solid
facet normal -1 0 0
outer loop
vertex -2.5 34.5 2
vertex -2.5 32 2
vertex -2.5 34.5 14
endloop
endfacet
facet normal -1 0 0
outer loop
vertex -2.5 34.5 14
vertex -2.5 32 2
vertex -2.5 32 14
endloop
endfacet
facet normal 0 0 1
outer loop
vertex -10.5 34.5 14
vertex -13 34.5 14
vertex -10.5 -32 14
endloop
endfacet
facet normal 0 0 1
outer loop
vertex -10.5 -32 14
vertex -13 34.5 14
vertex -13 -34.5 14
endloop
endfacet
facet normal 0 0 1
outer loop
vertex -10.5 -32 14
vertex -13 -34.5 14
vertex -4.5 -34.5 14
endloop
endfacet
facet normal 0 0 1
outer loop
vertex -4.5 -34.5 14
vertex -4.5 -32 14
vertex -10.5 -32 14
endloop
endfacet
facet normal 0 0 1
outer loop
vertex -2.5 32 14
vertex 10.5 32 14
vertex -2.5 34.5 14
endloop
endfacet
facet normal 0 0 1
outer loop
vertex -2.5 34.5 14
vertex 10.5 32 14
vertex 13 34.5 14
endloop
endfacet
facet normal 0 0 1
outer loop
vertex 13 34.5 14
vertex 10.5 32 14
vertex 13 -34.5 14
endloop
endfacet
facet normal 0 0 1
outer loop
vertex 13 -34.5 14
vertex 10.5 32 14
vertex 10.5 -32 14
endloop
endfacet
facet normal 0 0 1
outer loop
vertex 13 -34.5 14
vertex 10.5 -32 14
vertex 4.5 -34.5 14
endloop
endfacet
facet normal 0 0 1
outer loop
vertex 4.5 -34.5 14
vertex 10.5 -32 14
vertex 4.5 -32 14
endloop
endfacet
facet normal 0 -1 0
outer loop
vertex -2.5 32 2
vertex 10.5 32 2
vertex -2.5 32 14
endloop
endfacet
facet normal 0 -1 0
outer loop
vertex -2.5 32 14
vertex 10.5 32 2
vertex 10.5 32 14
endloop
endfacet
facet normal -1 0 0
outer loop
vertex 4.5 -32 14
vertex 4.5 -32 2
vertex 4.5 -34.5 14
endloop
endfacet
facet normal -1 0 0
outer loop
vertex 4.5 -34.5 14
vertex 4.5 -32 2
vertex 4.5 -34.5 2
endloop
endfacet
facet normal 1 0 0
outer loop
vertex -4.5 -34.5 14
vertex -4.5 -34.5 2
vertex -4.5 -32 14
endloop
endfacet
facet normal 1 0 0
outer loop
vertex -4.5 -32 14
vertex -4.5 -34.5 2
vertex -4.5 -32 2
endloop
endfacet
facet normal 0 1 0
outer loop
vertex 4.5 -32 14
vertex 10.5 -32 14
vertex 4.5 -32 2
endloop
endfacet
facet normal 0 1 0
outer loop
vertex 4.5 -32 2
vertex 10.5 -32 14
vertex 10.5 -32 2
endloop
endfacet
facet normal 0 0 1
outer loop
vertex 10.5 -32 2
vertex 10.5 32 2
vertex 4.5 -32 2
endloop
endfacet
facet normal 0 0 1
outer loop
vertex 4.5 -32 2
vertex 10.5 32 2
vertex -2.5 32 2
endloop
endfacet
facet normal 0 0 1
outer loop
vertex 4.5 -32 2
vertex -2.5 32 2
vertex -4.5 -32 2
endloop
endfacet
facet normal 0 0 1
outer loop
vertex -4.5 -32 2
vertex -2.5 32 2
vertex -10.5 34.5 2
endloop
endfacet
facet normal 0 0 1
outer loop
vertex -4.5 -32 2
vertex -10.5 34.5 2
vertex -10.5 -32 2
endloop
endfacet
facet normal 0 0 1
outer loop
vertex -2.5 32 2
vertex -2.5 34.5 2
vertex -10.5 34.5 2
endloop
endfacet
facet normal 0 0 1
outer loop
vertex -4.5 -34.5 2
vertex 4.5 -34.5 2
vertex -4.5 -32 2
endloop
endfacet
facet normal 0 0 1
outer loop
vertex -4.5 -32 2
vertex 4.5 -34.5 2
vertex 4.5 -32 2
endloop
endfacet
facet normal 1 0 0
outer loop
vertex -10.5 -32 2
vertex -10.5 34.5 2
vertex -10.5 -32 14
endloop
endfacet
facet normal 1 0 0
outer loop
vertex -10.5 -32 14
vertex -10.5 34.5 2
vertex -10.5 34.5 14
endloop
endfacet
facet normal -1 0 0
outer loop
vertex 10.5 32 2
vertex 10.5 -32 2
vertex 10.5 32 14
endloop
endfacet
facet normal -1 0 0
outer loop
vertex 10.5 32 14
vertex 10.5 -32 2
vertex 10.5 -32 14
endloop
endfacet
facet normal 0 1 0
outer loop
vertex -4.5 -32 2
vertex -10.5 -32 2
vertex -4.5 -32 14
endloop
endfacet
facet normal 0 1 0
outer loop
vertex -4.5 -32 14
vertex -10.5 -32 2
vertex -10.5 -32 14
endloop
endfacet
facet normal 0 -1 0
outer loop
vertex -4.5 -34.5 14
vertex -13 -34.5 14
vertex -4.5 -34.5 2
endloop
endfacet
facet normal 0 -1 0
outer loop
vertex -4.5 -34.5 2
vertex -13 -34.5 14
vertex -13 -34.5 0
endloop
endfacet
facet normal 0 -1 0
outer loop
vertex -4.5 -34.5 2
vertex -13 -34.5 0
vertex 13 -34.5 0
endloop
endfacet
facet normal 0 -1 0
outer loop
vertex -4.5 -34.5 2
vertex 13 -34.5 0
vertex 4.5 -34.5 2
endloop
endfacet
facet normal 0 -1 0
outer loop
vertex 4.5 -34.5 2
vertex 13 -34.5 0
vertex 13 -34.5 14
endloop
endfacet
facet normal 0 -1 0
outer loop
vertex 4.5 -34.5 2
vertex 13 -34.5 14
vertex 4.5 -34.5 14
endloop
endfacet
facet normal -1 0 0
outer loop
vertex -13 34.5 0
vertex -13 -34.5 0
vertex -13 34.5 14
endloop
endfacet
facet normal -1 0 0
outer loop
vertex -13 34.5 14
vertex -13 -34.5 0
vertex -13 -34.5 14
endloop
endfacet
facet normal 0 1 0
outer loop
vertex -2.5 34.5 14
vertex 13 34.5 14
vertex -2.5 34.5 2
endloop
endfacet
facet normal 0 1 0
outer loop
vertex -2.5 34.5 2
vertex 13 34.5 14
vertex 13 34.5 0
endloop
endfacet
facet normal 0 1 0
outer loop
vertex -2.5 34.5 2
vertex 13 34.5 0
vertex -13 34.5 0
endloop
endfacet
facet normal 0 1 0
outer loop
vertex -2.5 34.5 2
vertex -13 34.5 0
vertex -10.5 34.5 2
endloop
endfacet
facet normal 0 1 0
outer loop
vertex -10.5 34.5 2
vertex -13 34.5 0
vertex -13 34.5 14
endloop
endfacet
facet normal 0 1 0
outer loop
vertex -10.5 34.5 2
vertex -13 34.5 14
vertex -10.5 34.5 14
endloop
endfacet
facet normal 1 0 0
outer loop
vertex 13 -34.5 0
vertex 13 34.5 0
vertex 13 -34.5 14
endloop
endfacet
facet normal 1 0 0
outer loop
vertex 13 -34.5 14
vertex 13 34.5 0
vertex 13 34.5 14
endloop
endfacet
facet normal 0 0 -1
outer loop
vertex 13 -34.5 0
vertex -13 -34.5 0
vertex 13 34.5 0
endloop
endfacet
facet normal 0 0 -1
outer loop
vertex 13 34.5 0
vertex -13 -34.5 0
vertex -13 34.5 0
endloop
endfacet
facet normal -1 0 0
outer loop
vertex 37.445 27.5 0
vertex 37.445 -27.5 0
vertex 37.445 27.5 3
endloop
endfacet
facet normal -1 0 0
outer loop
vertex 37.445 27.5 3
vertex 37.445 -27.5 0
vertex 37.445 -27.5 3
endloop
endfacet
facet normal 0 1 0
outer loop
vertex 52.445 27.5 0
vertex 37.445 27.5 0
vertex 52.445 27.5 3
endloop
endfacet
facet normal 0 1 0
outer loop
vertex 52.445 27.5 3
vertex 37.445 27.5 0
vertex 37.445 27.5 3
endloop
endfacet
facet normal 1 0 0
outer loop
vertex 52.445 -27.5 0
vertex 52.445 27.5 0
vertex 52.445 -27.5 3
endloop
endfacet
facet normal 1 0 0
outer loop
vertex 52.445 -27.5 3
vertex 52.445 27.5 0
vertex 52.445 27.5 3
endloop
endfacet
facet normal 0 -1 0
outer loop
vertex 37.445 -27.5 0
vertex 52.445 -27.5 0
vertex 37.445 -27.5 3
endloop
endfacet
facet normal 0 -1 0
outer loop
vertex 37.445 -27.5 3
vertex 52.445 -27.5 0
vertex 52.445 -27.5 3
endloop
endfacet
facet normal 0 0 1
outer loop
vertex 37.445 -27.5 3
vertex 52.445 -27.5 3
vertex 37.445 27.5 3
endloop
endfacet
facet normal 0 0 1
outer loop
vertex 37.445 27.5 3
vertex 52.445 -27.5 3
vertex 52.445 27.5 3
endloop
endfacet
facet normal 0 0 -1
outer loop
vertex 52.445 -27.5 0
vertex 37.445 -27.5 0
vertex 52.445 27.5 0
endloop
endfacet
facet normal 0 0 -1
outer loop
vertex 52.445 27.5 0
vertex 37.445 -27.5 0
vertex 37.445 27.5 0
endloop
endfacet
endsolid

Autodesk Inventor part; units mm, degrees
ref_plane "YZ Plane" through (0, 0, 0) normal (1, 0, 0) x (0, 1, 0)
ref_plane "XZ Plane" through (0, 0, 0) normal (0, 1, 0) x (-1, 0, 0)
ref_plane "XY Plane" through (0, 0, 0) normal (0, 0, 1) x (1, 0, 0)
sketch "Skizze1" plane through (0, 0, 0) normal (0, 0, 1) x (1, 0, 0)
  line L0 (-10.5, 32) -> (10.5, 32)
  line L1 (10.5, 32) -> (10.5, -32)
  line L2 (10.5, -32) -> (-10.5, -32)
  line L3 (-10.5, -32) -> (-10.5, 32)
  line L4 (-10.5, 32) -> (10.5, -32) construction
  line L5 (10.5, 32) -> (-10.5, -32) construction
  line L6 (13, -34.5) -> (13, 34.5)
  line L7 (13, 34.5) -> (-13, 34.5)
  line L8 (-13, 34.5) -> (-13, -34.5)
  line L9 (-13, -34.5) -> (13, -34.5)
  point P0 (0, 0)
  dimension "d0" = 21
  dimension "d1" = 64
  dimension "d2" = 2.5
extrude "Extrusion1" add sketch "Skizze1" along normal blind 14
sketch "Skizze2" plane through (0, 0, 0) normal (0, 0, -1) x (-1, 0, 0)
  line L0 (-10.5, -32) -> (-10.5, 32) projected
  line L1 (-10.5, 32) -> (10.5, 32) projected
  line L2 (10.5, 32) -> (10.5, -32) projected
  line L3 (10.5, -32) -> (-10.5, -32) projected
  line L4 (-13, -34.5) -> (-13, 34.5) projected
  line L5 (13, -34.5) -> (-13, -34.5) projected
  line L6 (13, 34.5) -> (13, -34.5) projected
  line L7 (-13, 34.5) -> (13, 34.5) projected
  point P0 (0, 0)
extrude "Extrusion2" add sketch "Skizze2" against normal blind 2 contours L0 L1 L2 L3
sketch "Skizze3" plane through (-10.5, -32, 14) normal (0, 1, 0) x (1, 0, 0)
  line L0 (21, 12) -> (0, 12) projected
  line L1 (0, 12) -> (0, 0) projected
  line L2 (21, 0) -> (0, 0) projected
  line L3 (21, 12) -> (21, 0) projected
  line L4 (15, 27.4214) -> (6, 27.4214)
  line L5 (6, 27.4214) -> (6, -3.4214)
  line L6 (6, -3.4214) -> (15, -3.4214)
  line L7 (15, -3.4214) -> (15, 27.4214)
  line L8 (21, 12) -> (0, 12) projected
  line L9 (15, 27.4214) -> (6, -3.4214) construction
  line L10 (6, 27.4214) -> (15, -3.4214) construction
  line L11 (15, 12) -> (6, 12)
  point P0 (10.5, 14)
  point P1 (10.5, 12)
  dimension "d7" = 9
extrude "Extrusion3" cut sketch "Skizze3" against normal through all contours L7 L2 L5 L0 | L7 L6 L5 L2
sketch "Skizze4" plane through (0, 0, 14) normal (0, 0, 1) x (1, 0, 0)
  line L0 (-10.5, 32) -> (10.5, 32) projected
  line L1 (13, 34.5) -> (-13, 34.5) projected
  line L2 (-10.5, 32) -> (-2.5, 32)
  line L3 (-2.5, 32) -> (-2.5, 34.5)
  line L4 (-2.5, 34.5) -> (-10.5, 34.5)
  line L5 (-10.5, 34.5) -> (-10.5, 32)
  point P0 (0, 0)
  dimension "d10" = 8
extrude "Extrusion4" cut sketch "Skizze4" against normal up to surface (12 mm away)
sketch "Skizze5" plane through (0, 0, 0) normal (0, 0, 1) x (1, 0, 0)
  line L0 (37.4447, -27.5) -> (52.4447, -27.5)
  line L1 (52.4447, -27.5) -> (52.4447, 27.5)
  line L2 (52.4447, 27.5) -> (37.4447, 27.5)
  line L3 (37.4447, 27.5) -> (37.4447, -27.5)
  line L4 (37.4447, -27.5) -> (52.4447, 27.5) construction
  line L5 (52.4447, -27.5) -> (37.4447, 27.5) construction
  point P0 (0, 0)
  point P1 (44.9447, 0)
  dimension "d13" = 15
  dimension "d14" = 55
extrude "Extrusion5" add sketch "Skizze5" along normal blind 3
properties part number "mcu_housing"
